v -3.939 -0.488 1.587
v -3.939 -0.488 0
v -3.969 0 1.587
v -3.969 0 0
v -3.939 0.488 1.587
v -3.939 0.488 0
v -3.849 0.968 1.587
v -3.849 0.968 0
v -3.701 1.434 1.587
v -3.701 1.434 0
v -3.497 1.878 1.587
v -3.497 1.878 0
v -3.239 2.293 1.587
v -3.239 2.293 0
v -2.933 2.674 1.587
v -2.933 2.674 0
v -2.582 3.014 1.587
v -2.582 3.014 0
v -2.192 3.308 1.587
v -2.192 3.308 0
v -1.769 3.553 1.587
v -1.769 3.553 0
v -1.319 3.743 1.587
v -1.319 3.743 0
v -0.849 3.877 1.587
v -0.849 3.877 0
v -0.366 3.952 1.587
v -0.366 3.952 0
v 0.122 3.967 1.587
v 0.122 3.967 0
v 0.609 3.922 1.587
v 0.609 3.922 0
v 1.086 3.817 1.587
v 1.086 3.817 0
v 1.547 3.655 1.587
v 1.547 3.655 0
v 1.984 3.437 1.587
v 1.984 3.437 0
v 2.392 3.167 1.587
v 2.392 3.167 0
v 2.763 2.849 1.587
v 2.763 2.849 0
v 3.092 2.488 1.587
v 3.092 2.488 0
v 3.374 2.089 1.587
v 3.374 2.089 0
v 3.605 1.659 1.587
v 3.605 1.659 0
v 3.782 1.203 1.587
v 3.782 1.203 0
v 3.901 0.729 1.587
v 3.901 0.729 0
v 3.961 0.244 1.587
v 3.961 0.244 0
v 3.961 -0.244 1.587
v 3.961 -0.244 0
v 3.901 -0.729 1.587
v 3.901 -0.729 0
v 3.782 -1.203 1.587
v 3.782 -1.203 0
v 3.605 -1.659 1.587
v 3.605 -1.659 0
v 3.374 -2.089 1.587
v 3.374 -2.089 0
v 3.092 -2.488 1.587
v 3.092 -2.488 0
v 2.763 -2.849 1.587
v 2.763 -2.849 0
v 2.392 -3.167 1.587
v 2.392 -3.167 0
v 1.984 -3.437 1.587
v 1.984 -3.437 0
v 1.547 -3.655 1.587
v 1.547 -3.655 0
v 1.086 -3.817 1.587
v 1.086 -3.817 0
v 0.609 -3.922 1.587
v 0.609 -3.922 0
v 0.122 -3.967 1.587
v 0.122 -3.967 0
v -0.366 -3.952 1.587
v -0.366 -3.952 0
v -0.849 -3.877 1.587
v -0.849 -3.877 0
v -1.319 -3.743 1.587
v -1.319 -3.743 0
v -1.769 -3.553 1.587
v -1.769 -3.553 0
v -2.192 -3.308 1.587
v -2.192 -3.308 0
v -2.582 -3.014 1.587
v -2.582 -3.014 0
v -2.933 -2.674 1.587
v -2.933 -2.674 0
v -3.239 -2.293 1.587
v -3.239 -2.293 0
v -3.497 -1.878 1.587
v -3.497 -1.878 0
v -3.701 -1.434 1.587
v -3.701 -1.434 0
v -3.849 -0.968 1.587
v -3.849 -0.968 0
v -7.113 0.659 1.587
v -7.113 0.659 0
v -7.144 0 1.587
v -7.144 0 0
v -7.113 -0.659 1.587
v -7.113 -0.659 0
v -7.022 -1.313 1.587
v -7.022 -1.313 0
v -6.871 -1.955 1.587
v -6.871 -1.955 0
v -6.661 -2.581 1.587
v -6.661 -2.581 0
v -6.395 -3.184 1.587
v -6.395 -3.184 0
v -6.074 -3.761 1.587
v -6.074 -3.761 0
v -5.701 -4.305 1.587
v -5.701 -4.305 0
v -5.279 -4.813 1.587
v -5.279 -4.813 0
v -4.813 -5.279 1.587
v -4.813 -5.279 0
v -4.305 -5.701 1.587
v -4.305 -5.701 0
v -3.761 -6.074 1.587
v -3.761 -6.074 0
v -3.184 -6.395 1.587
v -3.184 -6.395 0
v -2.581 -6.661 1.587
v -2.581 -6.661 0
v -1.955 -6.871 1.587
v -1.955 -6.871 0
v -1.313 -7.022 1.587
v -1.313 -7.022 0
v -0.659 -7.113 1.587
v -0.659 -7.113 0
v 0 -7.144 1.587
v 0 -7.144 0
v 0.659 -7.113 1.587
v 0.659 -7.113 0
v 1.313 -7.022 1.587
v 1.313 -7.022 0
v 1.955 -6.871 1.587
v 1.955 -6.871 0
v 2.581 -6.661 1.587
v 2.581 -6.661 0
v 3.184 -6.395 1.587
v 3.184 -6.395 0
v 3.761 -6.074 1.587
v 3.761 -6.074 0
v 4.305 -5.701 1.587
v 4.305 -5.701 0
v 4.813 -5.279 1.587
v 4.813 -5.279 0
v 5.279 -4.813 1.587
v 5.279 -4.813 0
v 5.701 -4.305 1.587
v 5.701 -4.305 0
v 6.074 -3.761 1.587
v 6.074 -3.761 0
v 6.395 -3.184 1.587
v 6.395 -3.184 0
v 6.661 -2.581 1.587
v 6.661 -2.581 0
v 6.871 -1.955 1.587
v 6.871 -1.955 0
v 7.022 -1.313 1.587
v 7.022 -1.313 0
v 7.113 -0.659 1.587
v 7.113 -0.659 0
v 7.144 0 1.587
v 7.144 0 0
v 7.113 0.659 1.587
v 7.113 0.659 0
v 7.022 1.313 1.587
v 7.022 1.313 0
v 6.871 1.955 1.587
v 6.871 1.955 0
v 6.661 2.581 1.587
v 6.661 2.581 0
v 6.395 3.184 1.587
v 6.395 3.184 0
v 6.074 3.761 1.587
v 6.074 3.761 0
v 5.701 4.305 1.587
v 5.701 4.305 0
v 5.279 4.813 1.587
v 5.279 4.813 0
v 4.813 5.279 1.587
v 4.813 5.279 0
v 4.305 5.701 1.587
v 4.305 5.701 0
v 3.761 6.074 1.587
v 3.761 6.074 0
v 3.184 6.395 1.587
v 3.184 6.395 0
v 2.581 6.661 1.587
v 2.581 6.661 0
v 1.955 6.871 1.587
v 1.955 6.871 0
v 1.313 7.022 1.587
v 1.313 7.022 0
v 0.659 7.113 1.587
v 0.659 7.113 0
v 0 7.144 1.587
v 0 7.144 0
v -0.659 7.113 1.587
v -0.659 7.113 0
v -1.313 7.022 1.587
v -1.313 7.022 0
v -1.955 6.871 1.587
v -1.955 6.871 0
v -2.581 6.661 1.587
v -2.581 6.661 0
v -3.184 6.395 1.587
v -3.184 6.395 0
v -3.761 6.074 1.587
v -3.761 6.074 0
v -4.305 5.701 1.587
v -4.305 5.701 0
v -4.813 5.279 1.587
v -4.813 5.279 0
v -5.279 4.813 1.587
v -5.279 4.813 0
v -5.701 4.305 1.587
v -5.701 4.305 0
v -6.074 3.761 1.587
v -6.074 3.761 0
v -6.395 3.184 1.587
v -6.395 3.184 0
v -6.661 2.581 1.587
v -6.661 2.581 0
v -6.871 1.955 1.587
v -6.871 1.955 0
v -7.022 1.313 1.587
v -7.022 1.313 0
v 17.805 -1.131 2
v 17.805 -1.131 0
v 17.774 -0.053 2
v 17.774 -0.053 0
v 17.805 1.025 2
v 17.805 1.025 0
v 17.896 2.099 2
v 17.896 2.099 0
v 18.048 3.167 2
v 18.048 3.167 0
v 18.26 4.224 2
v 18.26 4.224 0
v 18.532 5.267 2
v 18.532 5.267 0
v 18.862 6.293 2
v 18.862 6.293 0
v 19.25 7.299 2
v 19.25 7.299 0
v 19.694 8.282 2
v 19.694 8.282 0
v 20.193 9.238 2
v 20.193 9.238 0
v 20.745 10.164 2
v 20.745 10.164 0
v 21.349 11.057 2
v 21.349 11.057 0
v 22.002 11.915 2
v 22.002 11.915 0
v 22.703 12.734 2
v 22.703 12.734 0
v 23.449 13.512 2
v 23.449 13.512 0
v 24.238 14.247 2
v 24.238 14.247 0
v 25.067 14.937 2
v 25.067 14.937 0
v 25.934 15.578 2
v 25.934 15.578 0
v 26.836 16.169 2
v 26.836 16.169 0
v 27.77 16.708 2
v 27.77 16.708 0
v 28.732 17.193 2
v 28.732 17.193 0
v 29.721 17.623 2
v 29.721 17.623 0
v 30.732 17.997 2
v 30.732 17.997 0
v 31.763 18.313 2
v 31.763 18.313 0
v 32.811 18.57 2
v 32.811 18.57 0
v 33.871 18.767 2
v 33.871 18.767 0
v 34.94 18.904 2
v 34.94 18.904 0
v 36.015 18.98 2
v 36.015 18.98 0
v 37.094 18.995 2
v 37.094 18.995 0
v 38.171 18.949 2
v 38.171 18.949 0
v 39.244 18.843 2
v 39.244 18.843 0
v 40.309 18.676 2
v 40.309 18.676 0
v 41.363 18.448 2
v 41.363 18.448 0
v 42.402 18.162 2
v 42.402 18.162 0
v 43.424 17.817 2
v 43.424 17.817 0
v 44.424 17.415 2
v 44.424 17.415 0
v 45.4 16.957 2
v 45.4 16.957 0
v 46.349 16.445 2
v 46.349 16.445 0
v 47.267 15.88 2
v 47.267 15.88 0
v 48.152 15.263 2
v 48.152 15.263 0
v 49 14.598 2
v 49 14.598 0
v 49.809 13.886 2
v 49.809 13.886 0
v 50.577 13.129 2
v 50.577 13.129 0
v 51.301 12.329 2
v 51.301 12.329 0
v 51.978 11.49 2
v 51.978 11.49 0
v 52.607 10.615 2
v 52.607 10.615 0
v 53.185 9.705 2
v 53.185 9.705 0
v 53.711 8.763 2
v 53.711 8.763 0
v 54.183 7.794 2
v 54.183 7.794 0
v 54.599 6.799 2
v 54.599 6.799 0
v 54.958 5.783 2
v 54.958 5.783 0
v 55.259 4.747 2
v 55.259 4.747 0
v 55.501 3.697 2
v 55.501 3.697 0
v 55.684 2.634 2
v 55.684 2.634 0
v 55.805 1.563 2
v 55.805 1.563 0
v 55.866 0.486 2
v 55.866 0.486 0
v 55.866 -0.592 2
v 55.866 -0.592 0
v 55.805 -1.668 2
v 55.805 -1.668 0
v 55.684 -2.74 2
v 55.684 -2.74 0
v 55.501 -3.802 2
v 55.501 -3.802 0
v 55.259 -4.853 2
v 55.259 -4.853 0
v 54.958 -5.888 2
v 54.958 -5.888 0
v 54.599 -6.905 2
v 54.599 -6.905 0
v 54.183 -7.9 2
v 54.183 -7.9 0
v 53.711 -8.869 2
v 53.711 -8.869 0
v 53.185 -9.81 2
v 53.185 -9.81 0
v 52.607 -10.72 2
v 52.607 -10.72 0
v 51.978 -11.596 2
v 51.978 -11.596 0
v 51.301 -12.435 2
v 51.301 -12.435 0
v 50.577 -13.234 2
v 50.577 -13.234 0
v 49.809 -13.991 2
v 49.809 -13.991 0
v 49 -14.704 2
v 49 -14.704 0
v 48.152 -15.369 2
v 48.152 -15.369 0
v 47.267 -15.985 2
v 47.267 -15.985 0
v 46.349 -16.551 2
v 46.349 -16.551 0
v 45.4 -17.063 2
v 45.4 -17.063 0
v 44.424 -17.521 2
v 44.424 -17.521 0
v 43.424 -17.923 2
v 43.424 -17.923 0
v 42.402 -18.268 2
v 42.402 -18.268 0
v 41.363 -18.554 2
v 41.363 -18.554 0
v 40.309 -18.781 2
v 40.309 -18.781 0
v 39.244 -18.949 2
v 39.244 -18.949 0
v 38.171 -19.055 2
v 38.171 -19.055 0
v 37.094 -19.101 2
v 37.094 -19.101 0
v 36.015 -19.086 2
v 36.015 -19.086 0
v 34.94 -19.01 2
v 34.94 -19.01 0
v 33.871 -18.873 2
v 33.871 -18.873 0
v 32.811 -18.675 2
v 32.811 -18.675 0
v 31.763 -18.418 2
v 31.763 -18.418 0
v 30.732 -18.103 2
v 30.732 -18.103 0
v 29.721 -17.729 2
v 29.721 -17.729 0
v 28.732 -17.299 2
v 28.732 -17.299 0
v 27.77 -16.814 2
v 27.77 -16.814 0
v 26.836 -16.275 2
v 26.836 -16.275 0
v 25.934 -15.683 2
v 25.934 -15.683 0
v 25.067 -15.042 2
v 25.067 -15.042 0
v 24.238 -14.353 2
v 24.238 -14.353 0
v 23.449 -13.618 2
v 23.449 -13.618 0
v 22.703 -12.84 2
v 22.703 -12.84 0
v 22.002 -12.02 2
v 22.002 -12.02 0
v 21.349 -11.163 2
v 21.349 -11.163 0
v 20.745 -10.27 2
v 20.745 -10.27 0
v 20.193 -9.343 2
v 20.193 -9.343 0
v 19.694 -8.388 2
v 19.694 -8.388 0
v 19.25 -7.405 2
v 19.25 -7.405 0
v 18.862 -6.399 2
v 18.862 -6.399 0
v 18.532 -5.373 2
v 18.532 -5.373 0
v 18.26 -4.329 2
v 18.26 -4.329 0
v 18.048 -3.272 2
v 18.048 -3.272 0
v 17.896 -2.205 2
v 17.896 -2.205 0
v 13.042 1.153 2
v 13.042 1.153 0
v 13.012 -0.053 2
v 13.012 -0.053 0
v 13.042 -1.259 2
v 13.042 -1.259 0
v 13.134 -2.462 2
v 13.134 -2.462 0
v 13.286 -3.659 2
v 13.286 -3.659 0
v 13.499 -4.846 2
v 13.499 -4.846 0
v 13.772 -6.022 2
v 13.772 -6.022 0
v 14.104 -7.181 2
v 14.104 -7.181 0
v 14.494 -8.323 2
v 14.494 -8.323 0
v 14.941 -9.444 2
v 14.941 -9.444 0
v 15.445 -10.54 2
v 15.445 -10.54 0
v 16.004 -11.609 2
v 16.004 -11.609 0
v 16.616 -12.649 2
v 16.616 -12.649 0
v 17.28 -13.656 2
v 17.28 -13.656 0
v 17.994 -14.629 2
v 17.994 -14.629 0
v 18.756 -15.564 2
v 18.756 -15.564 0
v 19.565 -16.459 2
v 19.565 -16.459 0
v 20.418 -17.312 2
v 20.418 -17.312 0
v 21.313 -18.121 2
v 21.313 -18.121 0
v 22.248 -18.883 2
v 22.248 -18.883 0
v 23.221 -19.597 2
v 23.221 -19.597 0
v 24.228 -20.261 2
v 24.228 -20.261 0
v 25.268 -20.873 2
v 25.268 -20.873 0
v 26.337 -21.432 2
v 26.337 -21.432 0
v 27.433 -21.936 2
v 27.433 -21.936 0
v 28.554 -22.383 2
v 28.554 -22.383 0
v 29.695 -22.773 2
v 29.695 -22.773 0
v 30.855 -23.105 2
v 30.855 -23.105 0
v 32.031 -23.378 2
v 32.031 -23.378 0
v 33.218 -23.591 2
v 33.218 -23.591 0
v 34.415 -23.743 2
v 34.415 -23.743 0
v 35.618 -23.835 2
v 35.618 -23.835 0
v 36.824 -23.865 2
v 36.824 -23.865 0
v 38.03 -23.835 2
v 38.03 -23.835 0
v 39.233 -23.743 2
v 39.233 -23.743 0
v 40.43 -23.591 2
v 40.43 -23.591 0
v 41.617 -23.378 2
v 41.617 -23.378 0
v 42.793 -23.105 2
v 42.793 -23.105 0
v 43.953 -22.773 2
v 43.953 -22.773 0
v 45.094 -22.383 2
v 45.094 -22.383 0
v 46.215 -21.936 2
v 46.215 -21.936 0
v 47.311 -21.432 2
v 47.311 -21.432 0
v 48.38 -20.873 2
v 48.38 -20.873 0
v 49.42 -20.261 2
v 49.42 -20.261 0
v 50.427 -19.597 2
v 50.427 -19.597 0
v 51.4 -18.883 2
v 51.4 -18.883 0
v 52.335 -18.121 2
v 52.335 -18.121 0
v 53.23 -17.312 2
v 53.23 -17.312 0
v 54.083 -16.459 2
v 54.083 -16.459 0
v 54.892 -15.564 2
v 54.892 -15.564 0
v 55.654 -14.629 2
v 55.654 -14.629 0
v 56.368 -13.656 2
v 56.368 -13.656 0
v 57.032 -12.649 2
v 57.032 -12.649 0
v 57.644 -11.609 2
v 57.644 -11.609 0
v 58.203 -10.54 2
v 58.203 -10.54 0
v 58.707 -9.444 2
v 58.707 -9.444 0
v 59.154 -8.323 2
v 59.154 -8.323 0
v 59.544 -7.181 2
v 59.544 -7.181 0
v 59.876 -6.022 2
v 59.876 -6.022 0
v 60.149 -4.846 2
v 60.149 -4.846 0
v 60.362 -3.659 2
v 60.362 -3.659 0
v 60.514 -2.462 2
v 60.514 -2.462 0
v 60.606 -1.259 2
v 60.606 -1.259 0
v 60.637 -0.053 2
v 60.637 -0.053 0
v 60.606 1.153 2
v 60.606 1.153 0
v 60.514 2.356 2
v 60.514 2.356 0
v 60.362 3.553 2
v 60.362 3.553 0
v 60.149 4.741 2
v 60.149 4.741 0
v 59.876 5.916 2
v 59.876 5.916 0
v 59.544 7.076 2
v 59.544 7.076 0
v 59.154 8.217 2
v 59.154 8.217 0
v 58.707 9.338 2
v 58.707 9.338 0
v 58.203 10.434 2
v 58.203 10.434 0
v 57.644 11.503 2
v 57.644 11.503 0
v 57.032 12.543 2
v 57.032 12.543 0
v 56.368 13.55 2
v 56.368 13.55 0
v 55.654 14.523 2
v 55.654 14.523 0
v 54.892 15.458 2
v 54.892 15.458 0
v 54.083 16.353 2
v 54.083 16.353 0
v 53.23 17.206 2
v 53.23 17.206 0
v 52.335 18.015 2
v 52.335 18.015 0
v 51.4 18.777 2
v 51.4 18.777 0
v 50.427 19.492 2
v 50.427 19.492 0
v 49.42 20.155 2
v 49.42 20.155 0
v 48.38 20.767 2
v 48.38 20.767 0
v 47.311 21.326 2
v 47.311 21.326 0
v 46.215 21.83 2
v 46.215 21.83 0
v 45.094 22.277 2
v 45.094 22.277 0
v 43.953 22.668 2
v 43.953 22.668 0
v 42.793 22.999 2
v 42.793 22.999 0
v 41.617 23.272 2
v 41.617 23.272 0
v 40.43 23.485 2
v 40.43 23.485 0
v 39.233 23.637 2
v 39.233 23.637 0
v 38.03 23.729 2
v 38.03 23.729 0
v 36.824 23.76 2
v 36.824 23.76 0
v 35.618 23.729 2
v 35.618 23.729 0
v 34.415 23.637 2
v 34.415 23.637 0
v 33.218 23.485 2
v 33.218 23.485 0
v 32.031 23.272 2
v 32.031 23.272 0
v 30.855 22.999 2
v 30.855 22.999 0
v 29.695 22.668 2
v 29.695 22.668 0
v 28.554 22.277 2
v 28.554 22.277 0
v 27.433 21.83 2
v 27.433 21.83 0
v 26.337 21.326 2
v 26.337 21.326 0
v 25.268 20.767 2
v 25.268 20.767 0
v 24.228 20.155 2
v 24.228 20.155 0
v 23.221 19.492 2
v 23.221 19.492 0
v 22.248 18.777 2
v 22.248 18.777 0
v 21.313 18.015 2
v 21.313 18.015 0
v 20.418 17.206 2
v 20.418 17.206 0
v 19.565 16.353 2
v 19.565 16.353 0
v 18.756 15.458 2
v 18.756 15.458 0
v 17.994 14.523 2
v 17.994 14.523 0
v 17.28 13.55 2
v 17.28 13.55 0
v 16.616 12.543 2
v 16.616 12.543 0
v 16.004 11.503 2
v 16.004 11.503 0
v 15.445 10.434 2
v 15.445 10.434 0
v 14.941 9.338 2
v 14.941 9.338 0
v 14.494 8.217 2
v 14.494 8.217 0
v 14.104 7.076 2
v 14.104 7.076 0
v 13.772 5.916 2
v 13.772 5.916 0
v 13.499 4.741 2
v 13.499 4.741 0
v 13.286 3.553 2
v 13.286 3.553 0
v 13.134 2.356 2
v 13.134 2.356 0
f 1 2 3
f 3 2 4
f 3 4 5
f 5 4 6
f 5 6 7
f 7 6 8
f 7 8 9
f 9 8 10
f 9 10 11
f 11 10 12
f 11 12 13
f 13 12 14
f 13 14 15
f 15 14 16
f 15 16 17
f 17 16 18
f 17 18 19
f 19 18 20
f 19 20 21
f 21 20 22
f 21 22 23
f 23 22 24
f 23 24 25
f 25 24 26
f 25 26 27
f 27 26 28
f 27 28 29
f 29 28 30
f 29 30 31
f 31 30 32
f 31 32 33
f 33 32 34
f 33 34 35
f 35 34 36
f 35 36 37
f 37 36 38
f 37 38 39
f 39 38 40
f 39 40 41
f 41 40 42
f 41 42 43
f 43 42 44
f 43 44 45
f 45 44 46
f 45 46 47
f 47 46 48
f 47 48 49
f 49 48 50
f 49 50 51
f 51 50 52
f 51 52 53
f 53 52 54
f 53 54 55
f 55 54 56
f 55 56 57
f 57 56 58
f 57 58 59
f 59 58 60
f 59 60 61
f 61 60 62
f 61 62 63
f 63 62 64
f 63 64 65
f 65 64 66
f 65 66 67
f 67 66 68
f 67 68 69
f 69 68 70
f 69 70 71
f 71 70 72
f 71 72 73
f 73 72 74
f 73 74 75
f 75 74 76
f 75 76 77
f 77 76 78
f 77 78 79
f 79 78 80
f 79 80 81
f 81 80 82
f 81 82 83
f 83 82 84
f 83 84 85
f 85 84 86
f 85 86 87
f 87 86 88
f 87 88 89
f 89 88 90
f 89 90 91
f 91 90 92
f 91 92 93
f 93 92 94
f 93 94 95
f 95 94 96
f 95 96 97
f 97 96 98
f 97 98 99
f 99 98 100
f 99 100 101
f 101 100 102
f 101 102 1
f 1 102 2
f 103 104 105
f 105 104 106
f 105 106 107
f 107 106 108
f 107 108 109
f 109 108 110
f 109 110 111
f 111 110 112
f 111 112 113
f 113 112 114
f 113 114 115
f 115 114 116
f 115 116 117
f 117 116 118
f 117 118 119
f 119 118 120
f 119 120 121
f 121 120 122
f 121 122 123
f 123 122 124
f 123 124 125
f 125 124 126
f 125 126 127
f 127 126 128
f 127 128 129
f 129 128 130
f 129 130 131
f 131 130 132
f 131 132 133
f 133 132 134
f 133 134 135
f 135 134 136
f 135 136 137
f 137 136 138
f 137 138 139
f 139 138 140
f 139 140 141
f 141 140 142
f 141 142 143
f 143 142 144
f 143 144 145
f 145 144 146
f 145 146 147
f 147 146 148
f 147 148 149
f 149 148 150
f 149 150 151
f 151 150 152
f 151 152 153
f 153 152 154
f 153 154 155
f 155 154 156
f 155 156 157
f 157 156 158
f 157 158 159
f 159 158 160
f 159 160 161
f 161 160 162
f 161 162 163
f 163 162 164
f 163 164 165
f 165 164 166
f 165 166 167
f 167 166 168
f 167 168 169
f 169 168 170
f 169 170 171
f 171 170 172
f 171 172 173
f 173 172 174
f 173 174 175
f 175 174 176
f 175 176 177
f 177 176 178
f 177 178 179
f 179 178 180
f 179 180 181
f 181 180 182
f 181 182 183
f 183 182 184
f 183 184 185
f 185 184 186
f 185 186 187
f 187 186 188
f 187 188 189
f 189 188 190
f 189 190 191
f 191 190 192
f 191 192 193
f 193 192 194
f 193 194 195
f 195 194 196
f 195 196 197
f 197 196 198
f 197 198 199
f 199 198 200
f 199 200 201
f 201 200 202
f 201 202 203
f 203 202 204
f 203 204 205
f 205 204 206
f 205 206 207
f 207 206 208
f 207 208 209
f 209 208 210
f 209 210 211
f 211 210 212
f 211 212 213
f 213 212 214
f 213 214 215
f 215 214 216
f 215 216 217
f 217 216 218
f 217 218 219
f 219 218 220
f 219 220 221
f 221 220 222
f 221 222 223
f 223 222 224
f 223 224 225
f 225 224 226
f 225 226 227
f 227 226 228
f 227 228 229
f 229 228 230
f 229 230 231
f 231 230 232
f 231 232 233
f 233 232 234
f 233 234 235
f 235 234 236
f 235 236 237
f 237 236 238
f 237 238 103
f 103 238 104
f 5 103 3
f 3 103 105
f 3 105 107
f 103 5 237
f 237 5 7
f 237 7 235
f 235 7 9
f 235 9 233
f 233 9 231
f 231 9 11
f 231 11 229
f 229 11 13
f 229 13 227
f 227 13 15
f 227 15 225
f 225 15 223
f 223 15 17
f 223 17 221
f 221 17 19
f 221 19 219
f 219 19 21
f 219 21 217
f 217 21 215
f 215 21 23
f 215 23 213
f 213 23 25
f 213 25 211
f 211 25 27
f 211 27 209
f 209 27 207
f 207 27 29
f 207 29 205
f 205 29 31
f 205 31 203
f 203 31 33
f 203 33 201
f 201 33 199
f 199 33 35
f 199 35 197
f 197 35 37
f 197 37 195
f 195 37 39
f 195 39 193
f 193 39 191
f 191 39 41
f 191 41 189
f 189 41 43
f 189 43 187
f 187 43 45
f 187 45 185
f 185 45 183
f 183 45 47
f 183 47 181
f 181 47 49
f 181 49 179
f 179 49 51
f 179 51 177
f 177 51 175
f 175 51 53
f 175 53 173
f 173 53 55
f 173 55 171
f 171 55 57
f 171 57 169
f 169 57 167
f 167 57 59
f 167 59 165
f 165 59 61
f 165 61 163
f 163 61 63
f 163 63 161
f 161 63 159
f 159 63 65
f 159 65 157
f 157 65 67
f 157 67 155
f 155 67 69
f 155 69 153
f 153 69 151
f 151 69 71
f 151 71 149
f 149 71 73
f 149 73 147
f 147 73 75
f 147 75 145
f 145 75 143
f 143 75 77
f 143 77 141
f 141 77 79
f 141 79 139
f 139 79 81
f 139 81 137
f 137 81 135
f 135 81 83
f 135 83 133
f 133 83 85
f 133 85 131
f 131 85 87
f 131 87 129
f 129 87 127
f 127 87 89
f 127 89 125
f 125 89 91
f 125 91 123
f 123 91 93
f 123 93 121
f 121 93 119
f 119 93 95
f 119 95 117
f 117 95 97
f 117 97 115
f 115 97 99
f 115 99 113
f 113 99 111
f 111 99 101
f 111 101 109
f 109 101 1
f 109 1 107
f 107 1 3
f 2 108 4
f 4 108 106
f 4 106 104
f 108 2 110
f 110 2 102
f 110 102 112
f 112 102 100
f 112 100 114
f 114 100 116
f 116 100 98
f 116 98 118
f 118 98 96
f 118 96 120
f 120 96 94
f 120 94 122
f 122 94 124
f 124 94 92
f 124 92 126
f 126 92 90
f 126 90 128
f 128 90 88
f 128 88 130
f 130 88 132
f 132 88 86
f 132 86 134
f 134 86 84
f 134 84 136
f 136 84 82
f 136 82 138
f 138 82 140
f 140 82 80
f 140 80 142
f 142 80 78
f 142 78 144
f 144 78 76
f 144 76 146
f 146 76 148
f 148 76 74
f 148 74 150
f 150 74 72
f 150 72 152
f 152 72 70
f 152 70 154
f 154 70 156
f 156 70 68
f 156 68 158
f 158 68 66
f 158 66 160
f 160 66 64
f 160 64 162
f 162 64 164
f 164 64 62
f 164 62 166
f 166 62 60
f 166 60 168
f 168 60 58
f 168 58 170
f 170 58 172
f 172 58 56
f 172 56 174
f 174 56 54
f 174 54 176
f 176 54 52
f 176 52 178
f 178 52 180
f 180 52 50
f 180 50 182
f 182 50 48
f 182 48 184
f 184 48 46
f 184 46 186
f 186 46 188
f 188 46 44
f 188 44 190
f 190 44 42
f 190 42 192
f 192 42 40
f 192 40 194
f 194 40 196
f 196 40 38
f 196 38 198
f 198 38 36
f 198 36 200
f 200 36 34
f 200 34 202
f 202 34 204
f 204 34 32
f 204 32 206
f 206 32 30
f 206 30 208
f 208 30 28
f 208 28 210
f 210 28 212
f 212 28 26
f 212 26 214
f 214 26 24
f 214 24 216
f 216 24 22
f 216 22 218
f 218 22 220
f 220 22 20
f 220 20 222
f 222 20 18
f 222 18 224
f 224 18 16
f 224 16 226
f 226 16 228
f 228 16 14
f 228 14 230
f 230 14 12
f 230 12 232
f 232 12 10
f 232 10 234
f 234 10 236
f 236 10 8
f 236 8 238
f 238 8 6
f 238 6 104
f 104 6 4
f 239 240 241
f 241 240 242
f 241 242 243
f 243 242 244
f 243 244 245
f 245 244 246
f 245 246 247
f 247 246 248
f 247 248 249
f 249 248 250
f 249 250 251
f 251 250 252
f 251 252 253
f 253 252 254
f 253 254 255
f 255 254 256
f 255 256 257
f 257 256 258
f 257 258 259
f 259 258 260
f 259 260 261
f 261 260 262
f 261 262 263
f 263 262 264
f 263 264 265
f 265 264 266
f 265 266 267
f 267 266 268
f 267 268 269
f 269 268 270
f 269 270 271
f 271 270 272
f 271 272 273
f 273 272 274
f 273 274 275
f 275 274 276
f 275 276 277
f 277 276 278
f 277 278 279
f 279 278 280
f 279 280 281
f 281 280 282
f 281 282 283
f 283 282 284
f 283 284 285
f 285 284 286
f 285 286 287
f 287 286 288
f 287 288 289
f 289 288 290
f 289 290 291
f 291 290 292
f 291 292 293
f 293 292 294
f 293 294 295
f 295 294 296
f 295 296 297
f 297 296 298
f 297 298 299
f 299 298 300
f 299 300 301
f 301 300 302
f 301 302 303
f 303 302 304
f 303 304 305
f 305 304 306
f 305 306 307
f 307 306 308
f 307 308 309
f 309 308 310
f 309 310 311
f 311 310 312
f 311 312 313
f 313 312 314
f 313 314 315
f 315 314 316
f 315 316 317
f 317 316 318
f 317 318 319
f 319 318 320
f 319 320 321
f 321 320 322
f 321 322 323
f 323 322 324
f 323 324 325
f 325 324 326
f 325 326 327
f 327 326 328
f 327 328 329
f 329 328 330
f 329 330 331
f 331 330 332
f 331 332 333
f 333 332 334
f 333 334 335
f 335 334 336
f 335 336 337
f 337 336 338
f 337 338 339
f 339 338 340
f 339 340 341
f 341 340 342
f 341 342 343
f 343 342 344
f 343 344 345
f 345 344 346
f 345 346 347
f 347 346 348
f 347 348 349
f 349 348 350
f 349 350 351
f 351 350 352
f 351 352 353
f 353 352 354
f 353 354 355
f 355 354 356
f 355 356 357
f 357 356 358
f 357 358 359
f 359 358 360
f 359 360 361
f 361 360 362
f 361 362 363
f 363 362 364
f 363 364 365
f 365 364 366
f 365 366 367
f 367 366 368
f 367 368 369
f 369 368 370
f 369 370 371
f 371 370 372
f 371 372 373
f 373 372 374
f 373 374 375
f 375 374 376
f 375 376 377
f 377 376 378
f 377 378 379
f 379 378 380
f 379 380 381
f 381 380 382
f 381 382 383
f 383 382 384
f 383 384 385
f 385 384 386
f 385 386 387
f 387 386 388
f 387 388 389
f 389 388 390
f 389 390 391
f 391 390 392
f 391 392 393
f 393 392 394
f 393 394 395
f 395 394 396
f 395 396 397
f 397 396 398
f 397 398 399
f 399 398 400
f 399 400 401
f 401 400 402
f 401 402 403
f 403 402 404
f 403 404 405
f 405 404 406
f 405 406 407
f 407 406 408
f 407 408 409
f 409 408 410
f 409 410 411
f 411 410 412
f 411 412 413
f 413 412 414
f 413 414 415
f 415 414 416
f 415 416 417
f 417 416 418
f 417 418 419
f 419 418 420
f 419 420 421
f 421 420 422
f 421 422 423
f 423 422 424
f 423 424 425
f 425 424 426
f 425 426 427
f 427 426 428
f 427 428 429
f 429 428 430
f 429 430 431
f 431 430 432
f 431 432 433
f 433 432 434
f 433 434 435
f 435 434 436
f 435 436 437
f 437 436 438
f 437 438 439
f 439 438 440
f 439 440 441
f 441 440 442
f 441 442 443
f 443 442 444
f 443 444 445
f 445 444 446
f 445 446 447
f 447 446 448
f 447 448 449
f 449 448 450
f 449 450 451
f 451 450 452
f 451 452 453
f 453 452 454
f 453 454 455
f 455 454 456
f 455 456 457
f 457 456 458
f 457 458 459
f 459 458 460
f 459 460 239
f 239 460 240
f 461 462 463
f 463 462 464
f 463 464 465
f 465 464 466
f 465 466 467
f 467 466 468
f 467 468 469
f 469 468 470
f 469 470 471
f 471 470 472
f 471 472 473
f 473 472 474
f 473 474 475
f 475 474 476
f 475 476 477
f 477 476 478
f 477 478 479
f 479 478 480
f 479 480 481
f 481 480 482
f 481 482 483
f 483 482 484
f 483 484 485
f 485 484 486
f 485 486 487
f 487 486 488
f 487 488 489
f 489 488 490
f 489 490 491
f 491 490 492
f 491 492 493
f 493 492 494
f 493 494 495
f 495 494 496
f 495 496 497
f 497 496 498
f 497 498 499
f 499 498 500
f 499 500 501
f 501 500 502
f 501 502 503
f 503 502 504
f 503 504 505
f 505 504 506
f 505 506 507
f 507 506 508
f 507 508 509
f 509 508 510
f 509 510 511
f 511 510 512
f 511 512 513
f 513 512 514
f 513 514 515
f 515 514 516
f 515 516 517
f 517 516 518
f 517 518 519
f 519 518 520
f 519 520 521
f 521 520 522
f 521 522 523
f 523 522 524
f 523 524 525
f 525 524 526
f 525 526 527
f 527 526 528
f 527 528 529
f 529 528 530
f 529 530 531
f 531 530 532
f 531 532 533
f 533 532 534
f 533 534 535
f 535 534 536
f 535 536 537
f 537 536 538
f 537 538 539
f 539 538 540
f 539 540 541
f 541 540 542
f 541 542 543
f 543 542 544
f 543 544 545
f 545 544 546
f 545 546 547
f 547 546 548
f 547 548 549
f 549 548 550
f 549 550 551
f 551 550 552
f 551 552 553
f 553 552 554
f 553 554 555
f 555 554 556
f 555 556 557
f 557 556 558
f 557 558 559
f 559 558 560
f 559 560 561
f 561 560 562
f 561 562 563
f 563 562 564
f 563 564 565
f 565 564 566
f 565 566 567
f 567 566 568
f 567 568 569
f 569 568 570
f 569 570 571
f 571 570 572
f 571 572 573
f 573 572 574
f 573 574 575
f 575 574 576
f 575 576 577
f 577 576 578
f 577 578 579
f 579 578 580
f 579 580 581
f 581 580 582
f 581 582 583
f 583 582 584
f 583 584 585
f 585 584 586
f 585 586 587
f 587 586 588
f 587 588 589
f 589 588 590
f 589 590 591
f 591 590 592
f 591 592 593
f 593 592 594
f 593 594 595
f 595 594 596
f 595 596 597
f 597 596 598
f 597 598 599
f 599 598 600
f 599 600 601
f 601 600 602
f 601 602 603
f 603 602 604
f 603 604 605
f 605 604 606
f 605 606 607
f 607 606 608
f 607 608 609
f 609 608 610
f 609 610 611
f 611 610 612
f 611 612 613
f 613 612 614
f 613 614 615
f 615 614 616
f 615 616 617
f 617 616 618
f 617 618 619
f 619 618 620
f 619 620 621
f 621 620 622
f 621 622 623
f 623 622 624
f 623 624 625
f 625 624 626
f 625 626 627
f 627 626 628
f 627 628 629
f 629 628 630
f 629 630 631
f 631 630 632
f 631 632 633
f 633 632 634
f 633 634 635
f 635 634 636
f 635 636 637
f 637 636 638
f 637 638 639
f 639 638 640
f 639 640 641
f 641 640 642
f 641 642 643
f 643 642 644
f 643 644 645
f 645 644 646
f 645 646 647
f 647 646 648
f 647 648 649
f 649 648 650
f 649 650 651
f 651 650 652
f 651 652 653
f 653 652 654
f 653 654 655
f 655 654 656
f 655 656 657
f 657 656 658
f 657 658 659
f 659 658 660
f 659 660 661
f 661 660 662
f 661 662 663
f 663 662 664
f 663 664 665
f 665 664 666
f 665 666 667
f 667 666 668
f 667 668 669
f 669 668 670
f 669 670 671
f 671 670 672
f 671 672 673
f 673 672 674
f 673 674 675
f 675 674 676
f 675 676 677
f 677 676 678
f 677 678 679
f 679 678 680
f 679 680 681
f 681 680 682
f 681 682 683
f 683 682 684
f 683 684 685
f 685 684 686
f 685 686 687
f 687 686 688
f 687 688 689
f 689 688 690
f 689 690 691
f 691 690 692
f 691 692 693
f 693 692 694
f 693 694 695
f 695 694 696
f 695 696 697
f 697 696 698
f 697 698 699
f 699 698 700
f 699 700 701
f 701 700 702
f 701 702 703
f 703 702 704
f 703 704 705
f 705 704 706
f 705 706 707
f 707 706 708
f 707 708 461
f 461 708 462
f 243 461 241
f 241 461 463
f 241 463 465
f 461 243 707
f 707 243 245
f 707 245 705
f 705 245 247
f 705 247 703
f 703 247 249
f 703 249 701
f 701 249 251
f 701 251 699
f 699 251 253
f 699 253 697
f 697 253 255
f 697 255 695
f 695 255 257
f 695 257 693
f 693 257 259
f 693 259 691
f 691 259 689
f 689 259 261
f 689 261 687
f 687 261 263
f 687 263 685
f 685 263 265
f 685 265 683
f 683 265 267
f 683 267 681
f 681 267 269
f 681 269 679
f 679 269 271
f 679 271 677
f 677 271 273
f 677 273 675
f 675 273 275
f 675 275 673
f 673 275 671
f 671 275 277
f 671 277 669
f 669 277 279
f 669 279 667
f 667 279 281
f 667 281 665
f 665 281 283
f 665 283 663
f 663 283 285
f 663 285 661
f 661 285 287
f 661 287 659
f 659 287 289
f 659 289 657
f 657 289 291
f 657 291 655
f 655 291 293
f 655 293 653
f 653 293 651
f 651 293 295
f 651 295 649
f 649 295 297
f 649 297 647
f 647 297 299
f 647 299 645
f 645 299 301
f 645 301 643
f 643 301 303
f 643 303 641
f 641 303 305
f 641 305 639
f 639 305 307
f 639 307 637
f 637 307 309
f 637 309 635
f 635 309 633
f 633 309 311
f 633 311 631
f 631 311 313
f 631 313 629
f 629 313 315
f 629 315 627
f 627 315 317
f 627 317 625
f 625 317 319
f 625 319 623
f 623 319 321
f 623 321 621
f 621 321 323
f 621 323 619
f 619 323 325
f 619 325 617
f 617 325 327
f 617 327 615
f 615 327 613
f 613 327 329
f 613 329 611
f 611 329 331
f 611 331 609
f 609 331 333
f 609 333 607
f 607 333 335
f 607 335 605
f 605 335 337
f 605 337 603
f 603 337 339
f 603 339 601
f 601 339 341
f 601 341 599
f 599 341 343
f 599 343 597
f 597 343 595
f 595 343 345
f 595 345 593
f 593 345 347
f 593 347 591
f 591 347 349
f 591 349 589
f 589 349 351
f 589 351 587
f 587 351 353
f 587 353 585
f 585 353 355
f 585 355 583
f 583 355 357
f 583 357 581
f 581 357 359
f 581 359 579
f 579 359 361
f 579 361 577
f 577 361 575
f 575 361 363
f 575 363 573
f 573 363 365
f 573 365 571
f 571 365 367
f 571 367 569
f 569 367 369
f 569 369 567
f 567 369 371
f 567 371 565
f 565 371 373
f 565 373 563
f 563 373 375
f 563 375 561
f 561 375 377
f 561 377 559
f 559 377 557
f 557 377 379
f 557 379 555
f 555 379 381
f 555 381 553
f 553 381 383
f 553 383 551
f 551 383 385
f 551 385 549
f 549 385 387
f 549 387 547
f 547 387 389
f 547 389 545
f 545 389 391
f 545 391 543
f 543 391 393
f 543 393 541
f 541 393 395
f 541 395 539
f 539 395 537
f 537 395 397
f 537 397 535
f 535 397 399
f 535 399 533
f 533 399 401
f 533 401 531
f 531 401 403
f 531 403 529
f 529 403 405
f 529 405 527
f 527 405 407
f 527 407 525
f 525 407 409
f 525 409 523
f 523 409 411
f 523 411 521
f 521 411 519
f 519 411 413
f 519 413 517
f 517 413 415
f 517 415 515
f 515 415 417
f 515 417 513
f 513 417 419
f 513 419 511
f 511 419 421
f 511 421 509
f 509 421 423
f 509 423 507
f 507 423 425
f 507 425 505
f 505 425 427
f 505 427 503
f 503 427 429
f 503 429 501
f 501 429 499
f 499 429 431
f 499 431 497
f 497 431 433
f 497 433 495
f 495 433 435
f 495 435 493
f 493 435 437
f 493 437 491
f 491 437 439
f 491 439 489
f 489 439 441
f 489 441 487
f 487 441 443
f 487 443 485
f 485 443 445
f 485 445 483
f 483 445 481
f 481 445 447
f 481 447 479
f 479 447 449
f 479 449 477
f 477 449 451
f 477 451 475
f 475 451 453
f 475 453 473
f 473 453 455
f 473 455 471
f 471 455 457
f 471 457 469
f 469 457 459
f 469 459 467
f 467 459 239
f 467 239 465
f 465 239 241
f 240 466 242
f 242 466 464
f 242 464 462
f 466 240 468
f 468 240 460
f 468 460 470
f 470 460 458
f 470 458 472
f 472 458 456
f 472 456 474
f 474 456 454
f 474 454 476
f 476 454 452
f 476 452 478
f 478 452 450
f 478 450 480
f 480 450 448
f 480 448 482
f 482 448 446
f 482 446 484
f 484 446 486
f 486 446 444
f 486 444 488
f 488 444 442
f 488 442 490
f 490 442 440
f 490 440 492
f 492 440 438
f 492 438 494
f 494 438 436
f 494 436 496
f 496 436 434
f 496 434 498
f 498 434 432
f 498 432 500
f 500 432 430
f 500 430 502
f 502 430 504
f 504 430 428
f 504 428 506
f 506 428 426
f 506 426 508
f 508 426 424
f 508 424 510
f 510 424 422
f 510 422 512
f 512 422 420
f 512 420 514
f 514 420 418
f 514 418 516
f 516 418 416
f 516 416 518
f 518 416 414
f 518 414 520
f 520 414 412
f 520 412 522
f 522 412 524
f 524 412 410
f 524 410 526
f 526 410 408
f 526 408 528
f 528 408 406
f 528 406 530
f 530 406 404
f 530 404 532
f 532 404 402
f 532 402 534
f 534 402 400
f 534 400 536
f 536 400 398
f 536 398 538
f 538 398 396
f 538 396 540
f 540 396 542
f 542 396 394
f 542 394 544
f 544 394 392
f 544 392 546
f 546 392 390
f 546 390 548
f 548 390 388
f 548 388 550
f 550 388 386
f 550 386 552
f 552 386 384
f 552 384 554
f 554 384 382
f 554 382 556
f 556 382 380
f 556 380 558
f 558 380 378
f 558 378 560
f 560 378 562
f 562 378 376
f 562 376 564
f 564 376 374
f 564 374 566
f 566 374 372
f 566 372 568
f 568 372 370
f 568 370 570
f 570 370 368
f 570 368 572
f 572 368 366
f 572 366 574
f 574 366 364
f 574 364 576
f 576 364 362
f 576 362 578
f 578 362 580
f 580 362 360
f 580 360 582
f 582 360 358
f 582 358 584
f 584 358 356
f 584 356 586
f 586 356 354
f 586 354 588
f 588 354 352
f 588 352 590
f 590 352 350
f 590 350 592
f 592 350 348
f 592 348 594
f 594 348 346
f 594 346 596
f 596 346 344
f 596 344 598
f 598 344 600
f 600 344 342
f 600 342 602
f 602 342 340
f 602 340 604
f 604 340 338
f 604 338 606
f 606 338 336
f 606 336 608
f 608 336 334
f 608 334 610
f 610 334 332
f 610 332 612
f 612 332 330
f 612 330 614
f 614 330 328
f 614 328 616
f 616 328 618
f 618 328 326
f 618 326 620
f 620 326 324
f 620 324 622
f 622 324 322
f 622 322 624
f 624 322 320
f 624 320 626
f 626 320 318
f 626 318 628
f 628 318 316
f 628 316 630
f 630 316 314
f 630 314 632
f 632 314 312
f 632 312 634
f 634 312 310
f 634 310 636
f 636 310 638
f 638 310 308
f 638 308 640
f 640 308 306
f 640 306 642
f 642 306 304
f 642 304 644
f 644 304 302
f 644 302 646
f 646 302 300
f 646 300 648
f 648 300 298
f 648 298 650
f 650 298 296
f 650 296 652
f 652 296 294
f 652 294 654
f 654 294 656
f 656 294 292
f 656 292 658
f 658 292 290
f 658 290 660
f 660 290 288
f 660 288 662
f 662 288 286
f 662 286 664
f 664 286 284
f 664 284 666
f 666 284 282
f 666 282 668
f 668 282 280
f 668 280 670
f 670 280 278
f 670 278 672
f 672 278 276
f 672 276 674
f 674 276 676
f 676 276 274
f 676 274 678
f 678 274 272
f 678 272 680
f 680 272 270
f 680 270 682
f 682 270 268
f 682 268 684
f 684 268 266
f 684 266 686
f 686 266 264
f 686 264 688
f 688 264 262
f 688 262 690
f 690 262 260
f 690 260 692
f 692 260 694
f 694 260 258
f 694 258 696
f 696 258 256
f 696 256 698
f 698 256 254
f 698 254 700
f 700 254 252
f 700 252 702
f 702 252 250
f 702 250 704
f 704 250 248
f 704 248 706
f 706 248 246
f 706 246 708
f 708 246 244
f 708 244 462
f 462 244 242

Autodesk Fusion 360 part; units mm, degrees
sketch "Sketch1" plane through (0, 0, 0) normal (0, 0, 1) x (1, 0, 0)
  circle A0 centre (0, 0) radius 3.9688
  circle A1 centre (0, 0) radius 7.1437
  dimension "d1" = 7.9375
  dimension "d2" = 3.175
extrude "Extrude1" add sketch "Sketch1" along normal blind 1.5875 makes body 1
sketch "Sketch2" plane through (0, 0, 0) normal (0, 0, 1) x (1, 0, 0)
  circle A0 centre (36.824, -0.0529) radius 19.05
  circle A1 centre (36.824, -0.0529) radius 23.8125
  dimension "d5" = 38.1
  dimension "d6" = 4.7625
extrude "Extrude2" add sketch "Sketch2" along normal blind 2 separate body makes body 2
equation "d1 = ( 5 / 16 ) * 1 in"
equation "d2 = ( 1 / 8 ) * 1 in"
equation "d3 = ( 1 / 16 ) * 1 in"
equation "d6 = ( 3 / 16 ) * 1 in"
